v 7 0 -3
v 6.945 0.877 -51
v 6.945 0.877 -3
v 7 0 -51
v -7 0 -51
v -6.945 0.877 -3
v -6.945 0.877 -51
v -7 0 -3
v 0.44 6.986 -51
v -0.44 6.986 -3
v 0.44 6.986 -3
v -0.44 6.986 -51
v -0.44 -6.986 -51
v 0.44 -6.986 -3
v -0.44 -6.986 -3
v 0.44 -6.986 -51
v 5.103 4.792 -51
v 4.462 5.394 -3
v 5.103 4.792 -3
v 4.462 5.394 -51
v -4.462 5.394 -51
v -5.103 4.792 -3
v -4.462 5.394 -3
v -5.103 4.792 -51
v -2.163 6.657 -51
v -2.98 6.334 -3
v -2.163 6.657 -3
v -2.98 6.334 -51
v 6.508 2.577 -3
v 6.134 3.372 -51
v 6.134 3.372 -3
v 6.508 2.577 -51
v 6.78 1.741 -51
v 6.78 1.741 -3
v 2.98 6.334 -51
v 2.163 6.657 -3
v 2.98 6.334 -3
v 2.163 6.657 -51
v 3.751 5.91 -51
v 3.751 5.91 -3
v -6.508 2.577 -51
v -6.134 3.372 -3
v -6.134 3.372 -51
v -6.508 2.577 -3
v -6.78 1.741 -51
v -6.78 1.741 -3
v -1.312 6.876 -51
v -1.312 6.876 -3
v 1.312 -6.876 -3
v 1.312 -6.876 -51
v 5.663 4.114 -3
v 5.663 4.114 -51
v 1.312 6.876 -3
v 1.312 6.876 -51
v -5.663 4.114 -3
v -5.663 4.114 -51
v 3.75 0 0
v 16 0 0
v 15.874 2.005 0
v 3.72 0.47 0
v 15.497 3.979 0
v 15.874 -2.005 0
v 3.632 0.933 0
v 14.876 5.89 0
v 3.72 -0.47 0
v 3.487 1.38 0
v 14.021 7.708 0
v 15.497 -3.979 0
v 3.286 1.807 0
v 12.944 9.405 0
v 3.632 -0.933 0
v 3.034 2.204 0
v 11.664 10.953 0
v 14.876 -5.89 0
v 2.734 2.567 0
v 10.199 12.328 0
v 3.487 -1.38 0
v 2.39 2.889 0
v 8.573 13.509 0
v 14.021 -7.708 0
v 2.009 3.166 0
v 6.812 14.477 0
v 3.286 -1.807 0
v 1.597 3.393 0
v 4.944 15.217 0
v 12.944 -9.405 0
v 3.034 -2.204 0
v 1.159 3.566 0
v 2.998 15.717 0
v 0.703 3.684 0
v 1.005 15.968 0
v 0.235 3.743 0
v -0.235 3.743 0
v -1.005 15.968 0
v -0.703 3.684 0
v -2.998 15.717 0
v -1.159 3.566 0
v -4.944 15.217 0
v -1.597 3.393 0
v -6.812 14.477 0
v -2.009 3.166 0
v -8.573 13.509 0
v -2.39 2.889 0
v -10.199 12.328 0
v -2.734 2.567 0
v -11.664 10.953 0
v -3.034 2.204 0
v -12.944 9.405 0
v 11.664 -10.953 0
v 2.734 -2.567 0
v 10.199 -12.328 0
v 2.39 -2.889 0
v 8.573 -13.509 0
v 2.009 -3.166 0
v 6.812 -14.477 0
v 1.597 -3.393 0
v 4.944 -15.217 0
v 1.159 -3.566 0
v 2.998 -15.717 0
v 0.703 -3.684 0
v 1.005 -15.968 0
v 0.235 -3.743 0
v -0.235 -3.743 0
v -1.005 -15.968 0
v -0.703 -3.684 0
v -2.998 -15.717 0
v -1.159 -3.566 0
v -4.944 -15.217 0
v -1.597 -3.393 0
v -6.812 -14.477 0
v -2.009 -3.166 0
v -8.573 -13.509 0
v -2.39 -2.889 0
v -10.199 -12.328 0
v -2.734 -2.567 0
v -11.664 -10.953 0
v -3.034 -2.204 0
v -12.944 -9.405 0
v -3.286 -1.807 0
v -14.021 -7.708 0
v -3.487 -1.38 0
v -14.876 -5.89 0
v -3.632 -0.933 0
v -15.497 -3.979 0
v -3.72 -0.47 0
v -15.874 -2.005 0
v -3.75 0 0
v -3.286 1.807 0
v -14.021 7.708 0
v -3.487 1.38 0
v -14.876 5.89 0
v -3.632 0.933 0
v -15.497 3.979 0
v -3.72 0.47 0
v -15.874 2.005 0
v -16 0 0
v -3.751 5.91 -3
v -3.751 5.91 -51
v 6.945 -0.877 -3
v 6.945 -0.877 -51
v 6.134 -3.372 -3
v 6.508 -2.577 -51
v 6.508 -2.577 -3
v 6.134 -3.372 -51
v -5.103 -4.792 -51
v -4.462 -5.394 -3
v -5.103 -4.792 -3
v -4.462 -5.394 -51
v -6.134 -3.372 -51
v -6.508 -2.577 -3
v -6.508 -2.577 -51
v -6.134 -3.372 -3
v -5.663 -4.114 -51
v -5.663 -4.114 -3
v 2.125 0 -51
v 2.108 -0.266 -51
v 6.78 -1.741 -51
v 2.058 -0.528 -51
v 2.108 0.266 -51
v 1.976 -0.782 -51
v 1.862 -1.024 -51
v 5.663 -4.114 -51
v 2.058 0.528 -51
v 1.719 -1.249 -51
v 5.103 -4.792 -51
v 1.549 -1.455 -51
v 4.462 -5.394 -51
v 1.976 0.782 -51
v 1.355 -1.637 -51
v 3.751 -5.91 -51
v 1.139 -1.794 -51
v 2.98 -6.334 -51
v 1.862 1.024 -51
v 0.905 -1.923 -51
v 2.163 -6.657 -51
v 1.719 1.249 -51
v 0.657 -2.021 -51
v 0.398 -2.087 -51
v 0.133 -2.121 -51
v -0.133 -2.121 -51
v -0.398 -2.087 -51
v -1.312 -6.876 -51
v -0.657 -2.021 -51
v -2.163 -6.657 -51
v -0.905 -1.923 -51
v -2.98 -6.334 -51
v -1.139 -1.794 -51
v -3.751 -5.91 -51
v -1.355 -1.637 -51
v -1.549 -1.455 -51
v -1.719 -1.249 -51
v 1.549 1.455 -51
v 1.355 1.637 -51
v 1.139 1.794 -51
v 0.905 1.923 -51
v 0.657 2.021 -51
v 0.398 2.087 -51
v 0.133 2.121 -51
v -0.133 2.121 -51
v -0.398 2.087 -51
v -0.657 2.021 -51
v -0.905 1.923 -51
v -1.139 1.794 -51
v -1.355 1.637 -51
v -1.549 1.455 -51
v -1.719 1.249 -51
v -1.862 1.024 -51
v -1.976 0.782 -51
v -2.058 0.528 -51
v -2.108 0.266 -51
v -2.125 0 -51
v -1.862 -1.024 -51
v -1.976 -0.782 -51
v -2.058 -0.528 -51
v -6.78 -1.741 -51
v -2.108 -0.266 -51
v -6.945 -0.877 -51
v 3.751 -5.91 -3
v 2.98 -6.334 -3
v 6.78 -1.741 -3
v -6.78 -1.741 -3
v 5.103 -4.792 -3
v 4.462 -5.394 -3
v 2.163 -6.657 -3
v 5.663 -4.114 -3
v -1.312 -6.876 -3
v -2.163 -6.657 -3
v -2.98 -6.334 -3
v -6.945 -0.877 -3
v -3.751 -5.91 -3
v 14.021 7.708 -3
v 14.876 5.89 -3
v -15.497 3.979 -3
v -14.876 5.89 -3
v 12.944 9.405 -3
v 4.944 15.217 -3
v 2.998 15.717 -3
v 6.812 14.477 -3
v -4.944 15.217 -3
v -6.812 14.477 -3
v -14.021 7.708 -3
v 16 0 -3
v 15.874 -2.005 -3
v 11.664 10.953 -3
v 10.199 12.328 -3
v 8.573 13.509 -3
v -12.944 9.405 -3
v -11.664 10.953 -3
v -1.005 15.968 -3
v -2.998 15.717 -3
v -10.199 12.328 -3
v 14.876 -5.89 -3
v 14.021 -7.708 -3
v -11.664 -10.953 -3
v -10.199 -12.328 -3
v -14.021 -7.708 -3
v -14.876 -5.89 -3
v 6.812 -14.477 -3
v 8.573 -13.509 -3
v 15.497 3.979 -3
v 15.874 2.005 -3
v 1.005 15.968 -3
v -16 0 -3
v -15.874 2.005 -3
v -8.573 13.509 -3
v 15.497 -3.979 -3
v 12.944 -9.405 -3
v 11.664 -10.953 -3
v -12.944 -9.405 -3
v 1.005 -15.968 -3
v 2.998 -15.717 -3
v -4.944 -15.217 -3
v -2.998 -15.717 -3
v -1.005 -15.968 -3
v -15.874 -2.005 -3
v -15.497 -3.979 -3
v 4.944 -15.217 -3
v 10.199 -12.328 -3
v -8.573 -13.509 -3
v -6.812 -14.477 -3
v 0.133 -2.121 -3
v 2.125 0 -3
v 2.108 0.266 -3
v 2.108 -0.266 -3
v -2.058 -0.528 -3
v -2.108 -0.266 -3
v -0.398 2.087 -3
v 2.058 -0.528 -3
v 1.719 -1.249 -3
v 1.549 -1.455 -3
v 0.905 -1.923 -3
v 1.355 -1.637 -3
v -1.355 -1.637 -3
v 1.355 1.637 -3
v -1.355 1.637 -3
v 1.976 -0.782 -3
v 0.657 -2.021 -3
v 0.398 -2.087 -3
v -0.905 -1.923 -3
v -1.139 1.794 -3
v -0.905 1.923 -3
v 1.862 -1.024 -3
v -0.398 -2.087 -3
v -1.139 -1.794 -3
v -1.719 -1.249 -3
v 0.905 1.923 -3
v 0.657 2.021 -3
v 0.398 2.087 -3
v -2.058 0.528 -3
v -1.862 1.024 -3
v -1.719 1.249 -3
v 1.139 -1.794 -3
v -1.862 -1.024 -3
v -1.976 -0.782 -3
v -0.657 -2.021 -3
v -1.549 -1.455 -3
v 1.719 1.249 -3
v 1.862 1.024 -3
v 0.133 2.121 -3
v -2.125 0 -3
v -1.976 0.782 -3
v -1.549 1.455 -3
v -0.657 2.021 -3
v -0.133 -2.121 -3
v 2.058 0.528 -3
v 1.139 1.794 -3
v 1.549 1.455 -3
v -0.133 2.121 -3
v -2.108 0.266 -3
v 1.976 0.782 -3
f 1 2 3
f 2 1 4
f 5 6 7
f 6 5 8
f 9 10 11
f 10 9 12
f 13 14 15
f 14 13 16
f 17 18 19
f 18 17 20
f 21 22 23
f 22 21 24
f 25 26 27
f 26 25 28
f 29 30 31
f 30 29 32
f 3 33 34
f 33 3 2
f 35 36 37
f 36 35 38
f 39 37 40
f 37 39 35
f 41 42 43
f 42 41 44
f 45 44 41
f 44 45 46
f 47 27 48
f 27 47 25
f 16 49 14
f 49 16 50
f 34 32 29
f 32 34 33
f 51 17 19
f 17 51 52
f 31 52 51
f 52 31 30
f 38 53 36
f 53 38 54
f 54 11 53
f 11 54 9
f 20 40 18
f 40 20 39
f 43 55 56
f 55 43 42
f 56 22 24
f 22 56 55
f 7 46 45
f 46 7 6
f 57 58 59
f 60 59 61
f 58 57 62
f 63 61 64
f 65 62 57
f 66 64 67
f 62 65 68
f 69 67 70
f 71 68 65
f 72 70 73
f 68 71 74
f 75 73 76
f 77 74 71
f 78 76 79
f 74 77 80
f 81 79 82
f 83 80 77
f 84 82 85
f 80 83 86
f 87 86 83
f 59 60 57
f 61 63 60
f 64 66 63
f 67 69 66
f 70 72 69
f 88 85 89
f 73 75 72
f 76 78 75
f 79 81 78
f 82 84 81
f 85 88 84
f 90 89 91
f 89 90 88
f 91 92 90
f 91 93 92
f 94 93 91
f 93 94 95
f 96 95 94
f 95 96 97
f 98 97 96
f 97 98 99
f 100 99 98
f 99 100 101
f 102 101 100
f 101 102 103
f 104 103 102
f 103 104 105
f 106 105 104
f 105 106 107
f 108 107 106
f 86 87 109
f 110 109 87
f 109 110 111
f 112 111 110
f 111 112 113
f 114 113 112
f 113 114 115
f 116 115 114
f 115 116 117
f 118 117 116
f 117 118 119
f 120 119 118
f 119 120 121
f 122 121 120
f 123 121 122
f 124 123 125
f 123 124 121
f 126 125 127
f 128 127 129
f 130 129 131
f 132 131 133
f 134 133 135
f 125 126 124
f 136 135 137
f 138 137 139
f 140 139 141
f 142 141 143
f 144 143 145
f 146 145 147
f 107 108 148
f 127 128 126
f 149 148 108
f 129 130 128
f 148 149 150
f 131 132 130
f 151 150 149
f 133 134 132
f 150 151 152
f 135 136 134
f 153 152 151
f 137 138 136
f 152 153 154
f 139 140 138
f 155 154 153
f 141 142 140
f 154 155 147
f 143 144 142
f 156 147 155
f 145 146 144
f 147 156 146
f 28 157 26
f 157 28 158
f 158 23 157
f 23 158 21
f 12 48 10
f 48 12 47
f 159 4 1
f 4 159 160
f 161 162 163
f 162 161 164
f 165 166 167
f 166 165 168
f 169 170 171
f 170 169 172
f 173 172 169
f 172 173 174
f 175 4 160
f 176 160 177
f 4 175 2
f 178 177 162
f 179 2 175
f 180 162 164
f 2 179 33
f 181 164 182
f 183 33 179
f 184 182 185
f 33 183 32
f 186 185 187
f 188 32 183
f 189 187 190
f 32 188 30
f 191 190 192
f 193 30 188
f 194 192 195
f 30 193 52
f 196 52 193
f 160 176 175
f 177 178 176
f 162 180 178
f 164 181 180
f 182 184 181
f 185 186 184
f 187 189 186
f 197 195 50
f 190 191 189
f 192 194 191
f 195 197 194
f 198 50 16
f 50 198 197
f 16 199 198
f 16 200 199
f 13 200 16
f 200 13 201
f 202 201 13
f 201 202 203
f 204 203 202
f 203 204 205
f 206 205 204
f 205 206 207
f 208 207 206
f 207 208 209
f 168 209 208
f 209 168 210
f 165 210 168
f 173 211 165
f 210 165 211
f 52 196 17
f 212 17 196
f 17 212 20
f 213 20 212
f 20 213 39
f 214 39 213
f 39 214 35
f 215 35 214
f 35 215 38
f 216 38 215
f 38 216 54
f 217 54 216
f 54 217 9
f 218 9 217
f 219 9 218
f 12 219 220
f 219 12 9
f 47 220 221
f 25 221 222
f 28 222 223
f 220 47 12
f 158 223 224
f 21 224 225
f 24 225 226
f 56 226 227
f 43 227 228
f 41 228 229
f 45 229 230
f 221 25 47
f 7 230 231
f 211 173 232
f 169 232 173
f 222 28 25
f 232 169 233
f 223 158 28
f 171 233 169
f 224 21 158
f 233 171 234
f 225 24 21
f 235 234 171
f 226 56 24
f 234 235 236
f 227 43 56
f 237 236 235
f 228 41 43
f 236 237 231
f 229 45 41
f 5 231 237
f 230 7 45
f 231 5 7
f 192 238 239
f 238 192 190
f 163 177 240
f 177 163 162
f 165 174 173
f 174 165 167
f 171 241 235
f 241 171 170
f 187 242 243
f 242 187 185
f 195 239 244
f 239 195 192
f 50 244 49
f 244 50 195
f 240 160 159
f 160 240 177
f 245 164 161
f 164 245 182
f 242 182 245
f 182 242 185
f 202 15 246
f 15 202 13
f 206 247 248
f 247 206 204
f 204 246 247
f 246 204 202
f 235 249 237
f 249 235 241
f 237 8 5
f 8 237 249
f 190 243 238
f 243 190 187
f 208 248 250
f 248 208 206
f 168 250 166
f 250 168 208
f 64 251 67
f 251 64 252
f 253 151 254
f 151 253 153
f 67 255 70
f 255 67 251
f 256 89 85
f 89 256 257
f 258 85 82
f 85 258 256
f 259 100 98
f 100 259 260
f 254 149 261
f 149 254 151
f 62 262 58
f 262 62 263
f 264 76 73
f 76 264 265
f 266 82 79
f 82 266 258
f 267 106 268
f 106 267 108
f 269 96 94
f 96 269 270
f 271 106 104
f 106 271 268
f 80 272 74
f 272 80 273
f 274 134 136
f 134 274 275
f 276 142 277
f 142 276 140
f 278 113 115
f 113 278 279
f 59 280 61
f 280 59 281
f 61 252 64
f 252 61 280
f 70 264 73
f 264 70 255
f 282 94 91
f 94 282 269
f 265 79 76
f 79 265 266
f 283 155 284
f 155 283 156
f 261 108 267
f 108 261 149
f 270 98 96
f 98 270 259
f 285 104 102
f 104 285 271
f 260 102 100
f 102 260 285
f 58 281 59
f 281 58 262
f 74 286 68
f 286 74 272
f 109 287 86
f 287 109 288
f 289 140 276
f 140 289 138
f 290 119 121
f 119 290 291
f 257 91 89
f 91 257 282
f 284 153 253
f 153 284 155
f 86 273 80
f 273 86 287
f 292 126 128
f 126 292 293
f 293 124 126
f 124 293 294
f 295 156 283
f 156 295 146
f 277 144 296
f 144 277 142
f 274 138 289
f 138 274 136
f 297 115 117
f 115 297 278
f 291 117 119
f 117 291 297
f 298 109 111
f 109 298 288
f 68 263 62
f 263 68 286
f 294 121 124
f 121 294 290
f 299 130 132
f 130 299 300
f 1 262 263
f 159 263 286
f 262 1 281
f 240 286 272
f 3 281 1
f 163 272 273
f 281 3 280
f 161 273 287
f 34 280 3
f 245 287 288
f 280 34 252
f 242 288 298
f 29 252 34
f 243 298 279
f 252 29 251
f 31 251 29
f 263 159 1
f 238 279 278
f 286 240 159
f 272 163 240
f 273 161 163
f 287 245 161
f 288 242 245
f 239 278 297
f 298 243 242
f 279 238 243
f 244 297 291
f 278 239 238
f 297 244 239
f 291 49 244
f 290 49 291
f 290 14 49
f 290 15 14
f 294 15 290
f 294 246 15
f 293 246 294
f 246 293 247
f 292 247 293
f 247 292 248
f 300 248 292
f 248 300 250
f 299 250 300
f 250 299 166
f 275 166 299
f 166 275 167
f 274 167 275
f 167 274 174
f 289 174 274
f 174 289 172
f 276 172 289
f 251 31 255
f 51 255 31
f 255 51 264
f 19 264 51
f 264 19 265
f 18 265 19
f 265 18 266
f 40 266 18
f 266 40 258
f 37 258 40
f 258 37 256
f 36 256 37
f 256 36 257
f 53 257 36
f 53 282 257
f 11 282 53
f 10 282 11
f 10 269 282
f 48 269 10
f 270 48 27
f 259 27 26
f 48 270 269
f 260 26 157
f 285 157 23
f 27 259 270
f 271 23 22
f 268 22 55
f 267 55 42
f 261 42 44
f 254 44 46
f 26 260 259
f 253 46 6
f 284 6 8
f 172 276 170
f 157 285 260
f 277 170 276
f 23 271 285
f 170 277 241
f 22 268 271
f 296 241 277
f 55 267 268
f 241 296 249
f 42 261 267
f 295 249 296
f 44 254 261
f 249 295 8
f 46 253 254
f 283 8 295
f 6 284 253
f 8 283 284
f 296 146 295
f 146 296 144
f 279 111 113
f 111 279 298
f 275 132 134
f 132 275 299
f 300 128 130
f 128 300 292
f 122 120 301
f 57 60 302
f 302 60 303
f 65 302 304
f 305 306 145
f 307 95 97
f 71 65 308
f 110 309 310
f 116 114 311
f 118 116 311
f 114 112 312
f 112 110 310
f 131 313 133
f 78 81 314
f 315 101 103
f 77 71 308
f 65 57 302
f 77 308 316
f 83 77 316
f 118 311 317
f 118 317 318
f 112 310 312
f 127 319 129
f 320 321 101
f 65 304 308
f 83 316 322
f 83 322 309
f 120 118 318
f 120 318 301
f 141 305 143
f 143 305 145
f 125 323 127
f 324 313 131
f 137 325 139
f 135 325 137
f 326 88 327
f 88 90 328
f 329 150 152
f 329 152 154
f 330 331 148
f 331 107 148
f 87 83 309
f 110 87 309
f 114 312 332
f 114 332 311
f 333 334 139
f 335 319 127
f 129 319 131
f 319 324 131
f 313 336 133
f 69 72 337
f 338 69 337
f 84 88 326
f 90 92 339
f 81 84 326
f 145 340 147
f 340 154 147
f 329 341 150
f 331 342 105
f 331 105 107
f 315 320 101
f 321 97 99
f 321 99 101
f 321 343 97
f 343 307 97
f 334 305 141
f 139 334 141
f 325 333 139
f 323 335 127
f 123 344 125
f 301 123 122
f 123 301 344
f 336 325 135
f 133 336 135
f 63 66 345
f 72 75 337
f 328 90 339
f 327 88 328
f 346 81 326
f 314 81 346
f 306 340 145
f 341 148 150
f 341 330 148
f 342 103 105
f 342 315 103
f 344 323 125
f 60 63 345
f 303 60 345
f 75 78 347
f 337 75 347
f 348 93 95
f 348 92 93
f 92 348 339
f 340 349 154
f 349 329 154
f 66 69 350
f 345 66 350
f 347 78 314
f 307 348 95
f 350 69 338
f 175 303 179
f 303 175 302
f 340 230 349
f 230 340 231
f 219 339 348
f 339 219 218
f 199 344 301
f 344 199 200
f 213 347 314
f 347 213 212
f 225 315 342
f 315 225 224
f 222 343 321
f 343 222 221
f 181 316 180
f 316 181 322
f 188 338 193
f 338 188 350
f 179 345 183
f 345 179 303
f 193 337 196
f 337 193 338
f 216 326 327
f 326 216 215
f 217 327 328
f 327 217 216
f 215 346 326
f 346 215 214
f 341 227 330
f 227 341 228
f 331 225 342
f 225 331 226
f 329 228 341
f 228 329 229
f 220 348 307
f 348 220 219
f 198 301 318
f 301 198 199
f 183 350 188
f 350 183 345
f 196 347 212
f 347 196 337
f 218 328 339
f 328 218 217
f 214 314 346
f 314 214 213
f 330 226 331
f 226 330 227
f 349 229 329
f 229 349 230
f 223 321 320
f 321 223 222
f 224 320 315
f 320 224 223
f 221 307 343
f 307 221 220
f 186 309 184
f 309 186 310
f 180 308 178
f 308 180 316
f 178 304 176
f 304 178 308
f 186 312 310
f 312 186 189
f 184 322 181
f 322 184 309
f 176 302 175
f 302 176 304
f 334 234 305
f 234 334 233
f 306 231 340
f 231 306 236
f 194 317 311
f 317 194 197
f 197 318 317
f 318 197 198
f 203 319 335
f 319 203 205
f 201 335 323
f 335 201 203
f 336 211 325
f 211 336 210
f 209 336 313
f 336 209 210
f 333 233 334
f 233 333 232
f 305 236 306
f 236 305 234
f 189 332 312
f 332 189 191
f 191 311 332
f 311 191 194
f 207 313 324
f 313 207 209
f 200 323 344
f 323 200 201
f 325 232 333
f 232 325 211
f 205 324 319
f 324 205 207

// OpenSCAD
$fn = 50;


difference() {
	union() {
		translate(v = [0, 0, -51.0000000000]) {
			cylinder(h = 51, r = 7.0000000000);
		}
		translate(v = [0, 0, -3.0000000000]) {
			cylinder(h = 3, r = 16.0000000000);
		}
	}
	union() {
		translate(v = [0, 0, 0]) {
			rotate(a = [0, 0, 0]) {
				difference() {
					union() {
						#translate(v = [0, 0, -51.0000000000]) {
							cylinder(h = 51, r = 2.0000000000);
						}
						#translate(v = [0, 0, -3]) {
							cylinder(h = 3, r = 7.0000000000, r1 = 2.1250000000, r2 = 3.7500000000);
						}
						#translate(v = [0, 0, -51.0000000000]) {
							cylinder(h = 51, r = 2.1250000000);
						}
						#translate(v = [0, 0, -51.0000000000]) {
							cylinder(h = 51, r = 2.0000000000);
						}
					}
					union();
				}
			}
		}
	}
}
